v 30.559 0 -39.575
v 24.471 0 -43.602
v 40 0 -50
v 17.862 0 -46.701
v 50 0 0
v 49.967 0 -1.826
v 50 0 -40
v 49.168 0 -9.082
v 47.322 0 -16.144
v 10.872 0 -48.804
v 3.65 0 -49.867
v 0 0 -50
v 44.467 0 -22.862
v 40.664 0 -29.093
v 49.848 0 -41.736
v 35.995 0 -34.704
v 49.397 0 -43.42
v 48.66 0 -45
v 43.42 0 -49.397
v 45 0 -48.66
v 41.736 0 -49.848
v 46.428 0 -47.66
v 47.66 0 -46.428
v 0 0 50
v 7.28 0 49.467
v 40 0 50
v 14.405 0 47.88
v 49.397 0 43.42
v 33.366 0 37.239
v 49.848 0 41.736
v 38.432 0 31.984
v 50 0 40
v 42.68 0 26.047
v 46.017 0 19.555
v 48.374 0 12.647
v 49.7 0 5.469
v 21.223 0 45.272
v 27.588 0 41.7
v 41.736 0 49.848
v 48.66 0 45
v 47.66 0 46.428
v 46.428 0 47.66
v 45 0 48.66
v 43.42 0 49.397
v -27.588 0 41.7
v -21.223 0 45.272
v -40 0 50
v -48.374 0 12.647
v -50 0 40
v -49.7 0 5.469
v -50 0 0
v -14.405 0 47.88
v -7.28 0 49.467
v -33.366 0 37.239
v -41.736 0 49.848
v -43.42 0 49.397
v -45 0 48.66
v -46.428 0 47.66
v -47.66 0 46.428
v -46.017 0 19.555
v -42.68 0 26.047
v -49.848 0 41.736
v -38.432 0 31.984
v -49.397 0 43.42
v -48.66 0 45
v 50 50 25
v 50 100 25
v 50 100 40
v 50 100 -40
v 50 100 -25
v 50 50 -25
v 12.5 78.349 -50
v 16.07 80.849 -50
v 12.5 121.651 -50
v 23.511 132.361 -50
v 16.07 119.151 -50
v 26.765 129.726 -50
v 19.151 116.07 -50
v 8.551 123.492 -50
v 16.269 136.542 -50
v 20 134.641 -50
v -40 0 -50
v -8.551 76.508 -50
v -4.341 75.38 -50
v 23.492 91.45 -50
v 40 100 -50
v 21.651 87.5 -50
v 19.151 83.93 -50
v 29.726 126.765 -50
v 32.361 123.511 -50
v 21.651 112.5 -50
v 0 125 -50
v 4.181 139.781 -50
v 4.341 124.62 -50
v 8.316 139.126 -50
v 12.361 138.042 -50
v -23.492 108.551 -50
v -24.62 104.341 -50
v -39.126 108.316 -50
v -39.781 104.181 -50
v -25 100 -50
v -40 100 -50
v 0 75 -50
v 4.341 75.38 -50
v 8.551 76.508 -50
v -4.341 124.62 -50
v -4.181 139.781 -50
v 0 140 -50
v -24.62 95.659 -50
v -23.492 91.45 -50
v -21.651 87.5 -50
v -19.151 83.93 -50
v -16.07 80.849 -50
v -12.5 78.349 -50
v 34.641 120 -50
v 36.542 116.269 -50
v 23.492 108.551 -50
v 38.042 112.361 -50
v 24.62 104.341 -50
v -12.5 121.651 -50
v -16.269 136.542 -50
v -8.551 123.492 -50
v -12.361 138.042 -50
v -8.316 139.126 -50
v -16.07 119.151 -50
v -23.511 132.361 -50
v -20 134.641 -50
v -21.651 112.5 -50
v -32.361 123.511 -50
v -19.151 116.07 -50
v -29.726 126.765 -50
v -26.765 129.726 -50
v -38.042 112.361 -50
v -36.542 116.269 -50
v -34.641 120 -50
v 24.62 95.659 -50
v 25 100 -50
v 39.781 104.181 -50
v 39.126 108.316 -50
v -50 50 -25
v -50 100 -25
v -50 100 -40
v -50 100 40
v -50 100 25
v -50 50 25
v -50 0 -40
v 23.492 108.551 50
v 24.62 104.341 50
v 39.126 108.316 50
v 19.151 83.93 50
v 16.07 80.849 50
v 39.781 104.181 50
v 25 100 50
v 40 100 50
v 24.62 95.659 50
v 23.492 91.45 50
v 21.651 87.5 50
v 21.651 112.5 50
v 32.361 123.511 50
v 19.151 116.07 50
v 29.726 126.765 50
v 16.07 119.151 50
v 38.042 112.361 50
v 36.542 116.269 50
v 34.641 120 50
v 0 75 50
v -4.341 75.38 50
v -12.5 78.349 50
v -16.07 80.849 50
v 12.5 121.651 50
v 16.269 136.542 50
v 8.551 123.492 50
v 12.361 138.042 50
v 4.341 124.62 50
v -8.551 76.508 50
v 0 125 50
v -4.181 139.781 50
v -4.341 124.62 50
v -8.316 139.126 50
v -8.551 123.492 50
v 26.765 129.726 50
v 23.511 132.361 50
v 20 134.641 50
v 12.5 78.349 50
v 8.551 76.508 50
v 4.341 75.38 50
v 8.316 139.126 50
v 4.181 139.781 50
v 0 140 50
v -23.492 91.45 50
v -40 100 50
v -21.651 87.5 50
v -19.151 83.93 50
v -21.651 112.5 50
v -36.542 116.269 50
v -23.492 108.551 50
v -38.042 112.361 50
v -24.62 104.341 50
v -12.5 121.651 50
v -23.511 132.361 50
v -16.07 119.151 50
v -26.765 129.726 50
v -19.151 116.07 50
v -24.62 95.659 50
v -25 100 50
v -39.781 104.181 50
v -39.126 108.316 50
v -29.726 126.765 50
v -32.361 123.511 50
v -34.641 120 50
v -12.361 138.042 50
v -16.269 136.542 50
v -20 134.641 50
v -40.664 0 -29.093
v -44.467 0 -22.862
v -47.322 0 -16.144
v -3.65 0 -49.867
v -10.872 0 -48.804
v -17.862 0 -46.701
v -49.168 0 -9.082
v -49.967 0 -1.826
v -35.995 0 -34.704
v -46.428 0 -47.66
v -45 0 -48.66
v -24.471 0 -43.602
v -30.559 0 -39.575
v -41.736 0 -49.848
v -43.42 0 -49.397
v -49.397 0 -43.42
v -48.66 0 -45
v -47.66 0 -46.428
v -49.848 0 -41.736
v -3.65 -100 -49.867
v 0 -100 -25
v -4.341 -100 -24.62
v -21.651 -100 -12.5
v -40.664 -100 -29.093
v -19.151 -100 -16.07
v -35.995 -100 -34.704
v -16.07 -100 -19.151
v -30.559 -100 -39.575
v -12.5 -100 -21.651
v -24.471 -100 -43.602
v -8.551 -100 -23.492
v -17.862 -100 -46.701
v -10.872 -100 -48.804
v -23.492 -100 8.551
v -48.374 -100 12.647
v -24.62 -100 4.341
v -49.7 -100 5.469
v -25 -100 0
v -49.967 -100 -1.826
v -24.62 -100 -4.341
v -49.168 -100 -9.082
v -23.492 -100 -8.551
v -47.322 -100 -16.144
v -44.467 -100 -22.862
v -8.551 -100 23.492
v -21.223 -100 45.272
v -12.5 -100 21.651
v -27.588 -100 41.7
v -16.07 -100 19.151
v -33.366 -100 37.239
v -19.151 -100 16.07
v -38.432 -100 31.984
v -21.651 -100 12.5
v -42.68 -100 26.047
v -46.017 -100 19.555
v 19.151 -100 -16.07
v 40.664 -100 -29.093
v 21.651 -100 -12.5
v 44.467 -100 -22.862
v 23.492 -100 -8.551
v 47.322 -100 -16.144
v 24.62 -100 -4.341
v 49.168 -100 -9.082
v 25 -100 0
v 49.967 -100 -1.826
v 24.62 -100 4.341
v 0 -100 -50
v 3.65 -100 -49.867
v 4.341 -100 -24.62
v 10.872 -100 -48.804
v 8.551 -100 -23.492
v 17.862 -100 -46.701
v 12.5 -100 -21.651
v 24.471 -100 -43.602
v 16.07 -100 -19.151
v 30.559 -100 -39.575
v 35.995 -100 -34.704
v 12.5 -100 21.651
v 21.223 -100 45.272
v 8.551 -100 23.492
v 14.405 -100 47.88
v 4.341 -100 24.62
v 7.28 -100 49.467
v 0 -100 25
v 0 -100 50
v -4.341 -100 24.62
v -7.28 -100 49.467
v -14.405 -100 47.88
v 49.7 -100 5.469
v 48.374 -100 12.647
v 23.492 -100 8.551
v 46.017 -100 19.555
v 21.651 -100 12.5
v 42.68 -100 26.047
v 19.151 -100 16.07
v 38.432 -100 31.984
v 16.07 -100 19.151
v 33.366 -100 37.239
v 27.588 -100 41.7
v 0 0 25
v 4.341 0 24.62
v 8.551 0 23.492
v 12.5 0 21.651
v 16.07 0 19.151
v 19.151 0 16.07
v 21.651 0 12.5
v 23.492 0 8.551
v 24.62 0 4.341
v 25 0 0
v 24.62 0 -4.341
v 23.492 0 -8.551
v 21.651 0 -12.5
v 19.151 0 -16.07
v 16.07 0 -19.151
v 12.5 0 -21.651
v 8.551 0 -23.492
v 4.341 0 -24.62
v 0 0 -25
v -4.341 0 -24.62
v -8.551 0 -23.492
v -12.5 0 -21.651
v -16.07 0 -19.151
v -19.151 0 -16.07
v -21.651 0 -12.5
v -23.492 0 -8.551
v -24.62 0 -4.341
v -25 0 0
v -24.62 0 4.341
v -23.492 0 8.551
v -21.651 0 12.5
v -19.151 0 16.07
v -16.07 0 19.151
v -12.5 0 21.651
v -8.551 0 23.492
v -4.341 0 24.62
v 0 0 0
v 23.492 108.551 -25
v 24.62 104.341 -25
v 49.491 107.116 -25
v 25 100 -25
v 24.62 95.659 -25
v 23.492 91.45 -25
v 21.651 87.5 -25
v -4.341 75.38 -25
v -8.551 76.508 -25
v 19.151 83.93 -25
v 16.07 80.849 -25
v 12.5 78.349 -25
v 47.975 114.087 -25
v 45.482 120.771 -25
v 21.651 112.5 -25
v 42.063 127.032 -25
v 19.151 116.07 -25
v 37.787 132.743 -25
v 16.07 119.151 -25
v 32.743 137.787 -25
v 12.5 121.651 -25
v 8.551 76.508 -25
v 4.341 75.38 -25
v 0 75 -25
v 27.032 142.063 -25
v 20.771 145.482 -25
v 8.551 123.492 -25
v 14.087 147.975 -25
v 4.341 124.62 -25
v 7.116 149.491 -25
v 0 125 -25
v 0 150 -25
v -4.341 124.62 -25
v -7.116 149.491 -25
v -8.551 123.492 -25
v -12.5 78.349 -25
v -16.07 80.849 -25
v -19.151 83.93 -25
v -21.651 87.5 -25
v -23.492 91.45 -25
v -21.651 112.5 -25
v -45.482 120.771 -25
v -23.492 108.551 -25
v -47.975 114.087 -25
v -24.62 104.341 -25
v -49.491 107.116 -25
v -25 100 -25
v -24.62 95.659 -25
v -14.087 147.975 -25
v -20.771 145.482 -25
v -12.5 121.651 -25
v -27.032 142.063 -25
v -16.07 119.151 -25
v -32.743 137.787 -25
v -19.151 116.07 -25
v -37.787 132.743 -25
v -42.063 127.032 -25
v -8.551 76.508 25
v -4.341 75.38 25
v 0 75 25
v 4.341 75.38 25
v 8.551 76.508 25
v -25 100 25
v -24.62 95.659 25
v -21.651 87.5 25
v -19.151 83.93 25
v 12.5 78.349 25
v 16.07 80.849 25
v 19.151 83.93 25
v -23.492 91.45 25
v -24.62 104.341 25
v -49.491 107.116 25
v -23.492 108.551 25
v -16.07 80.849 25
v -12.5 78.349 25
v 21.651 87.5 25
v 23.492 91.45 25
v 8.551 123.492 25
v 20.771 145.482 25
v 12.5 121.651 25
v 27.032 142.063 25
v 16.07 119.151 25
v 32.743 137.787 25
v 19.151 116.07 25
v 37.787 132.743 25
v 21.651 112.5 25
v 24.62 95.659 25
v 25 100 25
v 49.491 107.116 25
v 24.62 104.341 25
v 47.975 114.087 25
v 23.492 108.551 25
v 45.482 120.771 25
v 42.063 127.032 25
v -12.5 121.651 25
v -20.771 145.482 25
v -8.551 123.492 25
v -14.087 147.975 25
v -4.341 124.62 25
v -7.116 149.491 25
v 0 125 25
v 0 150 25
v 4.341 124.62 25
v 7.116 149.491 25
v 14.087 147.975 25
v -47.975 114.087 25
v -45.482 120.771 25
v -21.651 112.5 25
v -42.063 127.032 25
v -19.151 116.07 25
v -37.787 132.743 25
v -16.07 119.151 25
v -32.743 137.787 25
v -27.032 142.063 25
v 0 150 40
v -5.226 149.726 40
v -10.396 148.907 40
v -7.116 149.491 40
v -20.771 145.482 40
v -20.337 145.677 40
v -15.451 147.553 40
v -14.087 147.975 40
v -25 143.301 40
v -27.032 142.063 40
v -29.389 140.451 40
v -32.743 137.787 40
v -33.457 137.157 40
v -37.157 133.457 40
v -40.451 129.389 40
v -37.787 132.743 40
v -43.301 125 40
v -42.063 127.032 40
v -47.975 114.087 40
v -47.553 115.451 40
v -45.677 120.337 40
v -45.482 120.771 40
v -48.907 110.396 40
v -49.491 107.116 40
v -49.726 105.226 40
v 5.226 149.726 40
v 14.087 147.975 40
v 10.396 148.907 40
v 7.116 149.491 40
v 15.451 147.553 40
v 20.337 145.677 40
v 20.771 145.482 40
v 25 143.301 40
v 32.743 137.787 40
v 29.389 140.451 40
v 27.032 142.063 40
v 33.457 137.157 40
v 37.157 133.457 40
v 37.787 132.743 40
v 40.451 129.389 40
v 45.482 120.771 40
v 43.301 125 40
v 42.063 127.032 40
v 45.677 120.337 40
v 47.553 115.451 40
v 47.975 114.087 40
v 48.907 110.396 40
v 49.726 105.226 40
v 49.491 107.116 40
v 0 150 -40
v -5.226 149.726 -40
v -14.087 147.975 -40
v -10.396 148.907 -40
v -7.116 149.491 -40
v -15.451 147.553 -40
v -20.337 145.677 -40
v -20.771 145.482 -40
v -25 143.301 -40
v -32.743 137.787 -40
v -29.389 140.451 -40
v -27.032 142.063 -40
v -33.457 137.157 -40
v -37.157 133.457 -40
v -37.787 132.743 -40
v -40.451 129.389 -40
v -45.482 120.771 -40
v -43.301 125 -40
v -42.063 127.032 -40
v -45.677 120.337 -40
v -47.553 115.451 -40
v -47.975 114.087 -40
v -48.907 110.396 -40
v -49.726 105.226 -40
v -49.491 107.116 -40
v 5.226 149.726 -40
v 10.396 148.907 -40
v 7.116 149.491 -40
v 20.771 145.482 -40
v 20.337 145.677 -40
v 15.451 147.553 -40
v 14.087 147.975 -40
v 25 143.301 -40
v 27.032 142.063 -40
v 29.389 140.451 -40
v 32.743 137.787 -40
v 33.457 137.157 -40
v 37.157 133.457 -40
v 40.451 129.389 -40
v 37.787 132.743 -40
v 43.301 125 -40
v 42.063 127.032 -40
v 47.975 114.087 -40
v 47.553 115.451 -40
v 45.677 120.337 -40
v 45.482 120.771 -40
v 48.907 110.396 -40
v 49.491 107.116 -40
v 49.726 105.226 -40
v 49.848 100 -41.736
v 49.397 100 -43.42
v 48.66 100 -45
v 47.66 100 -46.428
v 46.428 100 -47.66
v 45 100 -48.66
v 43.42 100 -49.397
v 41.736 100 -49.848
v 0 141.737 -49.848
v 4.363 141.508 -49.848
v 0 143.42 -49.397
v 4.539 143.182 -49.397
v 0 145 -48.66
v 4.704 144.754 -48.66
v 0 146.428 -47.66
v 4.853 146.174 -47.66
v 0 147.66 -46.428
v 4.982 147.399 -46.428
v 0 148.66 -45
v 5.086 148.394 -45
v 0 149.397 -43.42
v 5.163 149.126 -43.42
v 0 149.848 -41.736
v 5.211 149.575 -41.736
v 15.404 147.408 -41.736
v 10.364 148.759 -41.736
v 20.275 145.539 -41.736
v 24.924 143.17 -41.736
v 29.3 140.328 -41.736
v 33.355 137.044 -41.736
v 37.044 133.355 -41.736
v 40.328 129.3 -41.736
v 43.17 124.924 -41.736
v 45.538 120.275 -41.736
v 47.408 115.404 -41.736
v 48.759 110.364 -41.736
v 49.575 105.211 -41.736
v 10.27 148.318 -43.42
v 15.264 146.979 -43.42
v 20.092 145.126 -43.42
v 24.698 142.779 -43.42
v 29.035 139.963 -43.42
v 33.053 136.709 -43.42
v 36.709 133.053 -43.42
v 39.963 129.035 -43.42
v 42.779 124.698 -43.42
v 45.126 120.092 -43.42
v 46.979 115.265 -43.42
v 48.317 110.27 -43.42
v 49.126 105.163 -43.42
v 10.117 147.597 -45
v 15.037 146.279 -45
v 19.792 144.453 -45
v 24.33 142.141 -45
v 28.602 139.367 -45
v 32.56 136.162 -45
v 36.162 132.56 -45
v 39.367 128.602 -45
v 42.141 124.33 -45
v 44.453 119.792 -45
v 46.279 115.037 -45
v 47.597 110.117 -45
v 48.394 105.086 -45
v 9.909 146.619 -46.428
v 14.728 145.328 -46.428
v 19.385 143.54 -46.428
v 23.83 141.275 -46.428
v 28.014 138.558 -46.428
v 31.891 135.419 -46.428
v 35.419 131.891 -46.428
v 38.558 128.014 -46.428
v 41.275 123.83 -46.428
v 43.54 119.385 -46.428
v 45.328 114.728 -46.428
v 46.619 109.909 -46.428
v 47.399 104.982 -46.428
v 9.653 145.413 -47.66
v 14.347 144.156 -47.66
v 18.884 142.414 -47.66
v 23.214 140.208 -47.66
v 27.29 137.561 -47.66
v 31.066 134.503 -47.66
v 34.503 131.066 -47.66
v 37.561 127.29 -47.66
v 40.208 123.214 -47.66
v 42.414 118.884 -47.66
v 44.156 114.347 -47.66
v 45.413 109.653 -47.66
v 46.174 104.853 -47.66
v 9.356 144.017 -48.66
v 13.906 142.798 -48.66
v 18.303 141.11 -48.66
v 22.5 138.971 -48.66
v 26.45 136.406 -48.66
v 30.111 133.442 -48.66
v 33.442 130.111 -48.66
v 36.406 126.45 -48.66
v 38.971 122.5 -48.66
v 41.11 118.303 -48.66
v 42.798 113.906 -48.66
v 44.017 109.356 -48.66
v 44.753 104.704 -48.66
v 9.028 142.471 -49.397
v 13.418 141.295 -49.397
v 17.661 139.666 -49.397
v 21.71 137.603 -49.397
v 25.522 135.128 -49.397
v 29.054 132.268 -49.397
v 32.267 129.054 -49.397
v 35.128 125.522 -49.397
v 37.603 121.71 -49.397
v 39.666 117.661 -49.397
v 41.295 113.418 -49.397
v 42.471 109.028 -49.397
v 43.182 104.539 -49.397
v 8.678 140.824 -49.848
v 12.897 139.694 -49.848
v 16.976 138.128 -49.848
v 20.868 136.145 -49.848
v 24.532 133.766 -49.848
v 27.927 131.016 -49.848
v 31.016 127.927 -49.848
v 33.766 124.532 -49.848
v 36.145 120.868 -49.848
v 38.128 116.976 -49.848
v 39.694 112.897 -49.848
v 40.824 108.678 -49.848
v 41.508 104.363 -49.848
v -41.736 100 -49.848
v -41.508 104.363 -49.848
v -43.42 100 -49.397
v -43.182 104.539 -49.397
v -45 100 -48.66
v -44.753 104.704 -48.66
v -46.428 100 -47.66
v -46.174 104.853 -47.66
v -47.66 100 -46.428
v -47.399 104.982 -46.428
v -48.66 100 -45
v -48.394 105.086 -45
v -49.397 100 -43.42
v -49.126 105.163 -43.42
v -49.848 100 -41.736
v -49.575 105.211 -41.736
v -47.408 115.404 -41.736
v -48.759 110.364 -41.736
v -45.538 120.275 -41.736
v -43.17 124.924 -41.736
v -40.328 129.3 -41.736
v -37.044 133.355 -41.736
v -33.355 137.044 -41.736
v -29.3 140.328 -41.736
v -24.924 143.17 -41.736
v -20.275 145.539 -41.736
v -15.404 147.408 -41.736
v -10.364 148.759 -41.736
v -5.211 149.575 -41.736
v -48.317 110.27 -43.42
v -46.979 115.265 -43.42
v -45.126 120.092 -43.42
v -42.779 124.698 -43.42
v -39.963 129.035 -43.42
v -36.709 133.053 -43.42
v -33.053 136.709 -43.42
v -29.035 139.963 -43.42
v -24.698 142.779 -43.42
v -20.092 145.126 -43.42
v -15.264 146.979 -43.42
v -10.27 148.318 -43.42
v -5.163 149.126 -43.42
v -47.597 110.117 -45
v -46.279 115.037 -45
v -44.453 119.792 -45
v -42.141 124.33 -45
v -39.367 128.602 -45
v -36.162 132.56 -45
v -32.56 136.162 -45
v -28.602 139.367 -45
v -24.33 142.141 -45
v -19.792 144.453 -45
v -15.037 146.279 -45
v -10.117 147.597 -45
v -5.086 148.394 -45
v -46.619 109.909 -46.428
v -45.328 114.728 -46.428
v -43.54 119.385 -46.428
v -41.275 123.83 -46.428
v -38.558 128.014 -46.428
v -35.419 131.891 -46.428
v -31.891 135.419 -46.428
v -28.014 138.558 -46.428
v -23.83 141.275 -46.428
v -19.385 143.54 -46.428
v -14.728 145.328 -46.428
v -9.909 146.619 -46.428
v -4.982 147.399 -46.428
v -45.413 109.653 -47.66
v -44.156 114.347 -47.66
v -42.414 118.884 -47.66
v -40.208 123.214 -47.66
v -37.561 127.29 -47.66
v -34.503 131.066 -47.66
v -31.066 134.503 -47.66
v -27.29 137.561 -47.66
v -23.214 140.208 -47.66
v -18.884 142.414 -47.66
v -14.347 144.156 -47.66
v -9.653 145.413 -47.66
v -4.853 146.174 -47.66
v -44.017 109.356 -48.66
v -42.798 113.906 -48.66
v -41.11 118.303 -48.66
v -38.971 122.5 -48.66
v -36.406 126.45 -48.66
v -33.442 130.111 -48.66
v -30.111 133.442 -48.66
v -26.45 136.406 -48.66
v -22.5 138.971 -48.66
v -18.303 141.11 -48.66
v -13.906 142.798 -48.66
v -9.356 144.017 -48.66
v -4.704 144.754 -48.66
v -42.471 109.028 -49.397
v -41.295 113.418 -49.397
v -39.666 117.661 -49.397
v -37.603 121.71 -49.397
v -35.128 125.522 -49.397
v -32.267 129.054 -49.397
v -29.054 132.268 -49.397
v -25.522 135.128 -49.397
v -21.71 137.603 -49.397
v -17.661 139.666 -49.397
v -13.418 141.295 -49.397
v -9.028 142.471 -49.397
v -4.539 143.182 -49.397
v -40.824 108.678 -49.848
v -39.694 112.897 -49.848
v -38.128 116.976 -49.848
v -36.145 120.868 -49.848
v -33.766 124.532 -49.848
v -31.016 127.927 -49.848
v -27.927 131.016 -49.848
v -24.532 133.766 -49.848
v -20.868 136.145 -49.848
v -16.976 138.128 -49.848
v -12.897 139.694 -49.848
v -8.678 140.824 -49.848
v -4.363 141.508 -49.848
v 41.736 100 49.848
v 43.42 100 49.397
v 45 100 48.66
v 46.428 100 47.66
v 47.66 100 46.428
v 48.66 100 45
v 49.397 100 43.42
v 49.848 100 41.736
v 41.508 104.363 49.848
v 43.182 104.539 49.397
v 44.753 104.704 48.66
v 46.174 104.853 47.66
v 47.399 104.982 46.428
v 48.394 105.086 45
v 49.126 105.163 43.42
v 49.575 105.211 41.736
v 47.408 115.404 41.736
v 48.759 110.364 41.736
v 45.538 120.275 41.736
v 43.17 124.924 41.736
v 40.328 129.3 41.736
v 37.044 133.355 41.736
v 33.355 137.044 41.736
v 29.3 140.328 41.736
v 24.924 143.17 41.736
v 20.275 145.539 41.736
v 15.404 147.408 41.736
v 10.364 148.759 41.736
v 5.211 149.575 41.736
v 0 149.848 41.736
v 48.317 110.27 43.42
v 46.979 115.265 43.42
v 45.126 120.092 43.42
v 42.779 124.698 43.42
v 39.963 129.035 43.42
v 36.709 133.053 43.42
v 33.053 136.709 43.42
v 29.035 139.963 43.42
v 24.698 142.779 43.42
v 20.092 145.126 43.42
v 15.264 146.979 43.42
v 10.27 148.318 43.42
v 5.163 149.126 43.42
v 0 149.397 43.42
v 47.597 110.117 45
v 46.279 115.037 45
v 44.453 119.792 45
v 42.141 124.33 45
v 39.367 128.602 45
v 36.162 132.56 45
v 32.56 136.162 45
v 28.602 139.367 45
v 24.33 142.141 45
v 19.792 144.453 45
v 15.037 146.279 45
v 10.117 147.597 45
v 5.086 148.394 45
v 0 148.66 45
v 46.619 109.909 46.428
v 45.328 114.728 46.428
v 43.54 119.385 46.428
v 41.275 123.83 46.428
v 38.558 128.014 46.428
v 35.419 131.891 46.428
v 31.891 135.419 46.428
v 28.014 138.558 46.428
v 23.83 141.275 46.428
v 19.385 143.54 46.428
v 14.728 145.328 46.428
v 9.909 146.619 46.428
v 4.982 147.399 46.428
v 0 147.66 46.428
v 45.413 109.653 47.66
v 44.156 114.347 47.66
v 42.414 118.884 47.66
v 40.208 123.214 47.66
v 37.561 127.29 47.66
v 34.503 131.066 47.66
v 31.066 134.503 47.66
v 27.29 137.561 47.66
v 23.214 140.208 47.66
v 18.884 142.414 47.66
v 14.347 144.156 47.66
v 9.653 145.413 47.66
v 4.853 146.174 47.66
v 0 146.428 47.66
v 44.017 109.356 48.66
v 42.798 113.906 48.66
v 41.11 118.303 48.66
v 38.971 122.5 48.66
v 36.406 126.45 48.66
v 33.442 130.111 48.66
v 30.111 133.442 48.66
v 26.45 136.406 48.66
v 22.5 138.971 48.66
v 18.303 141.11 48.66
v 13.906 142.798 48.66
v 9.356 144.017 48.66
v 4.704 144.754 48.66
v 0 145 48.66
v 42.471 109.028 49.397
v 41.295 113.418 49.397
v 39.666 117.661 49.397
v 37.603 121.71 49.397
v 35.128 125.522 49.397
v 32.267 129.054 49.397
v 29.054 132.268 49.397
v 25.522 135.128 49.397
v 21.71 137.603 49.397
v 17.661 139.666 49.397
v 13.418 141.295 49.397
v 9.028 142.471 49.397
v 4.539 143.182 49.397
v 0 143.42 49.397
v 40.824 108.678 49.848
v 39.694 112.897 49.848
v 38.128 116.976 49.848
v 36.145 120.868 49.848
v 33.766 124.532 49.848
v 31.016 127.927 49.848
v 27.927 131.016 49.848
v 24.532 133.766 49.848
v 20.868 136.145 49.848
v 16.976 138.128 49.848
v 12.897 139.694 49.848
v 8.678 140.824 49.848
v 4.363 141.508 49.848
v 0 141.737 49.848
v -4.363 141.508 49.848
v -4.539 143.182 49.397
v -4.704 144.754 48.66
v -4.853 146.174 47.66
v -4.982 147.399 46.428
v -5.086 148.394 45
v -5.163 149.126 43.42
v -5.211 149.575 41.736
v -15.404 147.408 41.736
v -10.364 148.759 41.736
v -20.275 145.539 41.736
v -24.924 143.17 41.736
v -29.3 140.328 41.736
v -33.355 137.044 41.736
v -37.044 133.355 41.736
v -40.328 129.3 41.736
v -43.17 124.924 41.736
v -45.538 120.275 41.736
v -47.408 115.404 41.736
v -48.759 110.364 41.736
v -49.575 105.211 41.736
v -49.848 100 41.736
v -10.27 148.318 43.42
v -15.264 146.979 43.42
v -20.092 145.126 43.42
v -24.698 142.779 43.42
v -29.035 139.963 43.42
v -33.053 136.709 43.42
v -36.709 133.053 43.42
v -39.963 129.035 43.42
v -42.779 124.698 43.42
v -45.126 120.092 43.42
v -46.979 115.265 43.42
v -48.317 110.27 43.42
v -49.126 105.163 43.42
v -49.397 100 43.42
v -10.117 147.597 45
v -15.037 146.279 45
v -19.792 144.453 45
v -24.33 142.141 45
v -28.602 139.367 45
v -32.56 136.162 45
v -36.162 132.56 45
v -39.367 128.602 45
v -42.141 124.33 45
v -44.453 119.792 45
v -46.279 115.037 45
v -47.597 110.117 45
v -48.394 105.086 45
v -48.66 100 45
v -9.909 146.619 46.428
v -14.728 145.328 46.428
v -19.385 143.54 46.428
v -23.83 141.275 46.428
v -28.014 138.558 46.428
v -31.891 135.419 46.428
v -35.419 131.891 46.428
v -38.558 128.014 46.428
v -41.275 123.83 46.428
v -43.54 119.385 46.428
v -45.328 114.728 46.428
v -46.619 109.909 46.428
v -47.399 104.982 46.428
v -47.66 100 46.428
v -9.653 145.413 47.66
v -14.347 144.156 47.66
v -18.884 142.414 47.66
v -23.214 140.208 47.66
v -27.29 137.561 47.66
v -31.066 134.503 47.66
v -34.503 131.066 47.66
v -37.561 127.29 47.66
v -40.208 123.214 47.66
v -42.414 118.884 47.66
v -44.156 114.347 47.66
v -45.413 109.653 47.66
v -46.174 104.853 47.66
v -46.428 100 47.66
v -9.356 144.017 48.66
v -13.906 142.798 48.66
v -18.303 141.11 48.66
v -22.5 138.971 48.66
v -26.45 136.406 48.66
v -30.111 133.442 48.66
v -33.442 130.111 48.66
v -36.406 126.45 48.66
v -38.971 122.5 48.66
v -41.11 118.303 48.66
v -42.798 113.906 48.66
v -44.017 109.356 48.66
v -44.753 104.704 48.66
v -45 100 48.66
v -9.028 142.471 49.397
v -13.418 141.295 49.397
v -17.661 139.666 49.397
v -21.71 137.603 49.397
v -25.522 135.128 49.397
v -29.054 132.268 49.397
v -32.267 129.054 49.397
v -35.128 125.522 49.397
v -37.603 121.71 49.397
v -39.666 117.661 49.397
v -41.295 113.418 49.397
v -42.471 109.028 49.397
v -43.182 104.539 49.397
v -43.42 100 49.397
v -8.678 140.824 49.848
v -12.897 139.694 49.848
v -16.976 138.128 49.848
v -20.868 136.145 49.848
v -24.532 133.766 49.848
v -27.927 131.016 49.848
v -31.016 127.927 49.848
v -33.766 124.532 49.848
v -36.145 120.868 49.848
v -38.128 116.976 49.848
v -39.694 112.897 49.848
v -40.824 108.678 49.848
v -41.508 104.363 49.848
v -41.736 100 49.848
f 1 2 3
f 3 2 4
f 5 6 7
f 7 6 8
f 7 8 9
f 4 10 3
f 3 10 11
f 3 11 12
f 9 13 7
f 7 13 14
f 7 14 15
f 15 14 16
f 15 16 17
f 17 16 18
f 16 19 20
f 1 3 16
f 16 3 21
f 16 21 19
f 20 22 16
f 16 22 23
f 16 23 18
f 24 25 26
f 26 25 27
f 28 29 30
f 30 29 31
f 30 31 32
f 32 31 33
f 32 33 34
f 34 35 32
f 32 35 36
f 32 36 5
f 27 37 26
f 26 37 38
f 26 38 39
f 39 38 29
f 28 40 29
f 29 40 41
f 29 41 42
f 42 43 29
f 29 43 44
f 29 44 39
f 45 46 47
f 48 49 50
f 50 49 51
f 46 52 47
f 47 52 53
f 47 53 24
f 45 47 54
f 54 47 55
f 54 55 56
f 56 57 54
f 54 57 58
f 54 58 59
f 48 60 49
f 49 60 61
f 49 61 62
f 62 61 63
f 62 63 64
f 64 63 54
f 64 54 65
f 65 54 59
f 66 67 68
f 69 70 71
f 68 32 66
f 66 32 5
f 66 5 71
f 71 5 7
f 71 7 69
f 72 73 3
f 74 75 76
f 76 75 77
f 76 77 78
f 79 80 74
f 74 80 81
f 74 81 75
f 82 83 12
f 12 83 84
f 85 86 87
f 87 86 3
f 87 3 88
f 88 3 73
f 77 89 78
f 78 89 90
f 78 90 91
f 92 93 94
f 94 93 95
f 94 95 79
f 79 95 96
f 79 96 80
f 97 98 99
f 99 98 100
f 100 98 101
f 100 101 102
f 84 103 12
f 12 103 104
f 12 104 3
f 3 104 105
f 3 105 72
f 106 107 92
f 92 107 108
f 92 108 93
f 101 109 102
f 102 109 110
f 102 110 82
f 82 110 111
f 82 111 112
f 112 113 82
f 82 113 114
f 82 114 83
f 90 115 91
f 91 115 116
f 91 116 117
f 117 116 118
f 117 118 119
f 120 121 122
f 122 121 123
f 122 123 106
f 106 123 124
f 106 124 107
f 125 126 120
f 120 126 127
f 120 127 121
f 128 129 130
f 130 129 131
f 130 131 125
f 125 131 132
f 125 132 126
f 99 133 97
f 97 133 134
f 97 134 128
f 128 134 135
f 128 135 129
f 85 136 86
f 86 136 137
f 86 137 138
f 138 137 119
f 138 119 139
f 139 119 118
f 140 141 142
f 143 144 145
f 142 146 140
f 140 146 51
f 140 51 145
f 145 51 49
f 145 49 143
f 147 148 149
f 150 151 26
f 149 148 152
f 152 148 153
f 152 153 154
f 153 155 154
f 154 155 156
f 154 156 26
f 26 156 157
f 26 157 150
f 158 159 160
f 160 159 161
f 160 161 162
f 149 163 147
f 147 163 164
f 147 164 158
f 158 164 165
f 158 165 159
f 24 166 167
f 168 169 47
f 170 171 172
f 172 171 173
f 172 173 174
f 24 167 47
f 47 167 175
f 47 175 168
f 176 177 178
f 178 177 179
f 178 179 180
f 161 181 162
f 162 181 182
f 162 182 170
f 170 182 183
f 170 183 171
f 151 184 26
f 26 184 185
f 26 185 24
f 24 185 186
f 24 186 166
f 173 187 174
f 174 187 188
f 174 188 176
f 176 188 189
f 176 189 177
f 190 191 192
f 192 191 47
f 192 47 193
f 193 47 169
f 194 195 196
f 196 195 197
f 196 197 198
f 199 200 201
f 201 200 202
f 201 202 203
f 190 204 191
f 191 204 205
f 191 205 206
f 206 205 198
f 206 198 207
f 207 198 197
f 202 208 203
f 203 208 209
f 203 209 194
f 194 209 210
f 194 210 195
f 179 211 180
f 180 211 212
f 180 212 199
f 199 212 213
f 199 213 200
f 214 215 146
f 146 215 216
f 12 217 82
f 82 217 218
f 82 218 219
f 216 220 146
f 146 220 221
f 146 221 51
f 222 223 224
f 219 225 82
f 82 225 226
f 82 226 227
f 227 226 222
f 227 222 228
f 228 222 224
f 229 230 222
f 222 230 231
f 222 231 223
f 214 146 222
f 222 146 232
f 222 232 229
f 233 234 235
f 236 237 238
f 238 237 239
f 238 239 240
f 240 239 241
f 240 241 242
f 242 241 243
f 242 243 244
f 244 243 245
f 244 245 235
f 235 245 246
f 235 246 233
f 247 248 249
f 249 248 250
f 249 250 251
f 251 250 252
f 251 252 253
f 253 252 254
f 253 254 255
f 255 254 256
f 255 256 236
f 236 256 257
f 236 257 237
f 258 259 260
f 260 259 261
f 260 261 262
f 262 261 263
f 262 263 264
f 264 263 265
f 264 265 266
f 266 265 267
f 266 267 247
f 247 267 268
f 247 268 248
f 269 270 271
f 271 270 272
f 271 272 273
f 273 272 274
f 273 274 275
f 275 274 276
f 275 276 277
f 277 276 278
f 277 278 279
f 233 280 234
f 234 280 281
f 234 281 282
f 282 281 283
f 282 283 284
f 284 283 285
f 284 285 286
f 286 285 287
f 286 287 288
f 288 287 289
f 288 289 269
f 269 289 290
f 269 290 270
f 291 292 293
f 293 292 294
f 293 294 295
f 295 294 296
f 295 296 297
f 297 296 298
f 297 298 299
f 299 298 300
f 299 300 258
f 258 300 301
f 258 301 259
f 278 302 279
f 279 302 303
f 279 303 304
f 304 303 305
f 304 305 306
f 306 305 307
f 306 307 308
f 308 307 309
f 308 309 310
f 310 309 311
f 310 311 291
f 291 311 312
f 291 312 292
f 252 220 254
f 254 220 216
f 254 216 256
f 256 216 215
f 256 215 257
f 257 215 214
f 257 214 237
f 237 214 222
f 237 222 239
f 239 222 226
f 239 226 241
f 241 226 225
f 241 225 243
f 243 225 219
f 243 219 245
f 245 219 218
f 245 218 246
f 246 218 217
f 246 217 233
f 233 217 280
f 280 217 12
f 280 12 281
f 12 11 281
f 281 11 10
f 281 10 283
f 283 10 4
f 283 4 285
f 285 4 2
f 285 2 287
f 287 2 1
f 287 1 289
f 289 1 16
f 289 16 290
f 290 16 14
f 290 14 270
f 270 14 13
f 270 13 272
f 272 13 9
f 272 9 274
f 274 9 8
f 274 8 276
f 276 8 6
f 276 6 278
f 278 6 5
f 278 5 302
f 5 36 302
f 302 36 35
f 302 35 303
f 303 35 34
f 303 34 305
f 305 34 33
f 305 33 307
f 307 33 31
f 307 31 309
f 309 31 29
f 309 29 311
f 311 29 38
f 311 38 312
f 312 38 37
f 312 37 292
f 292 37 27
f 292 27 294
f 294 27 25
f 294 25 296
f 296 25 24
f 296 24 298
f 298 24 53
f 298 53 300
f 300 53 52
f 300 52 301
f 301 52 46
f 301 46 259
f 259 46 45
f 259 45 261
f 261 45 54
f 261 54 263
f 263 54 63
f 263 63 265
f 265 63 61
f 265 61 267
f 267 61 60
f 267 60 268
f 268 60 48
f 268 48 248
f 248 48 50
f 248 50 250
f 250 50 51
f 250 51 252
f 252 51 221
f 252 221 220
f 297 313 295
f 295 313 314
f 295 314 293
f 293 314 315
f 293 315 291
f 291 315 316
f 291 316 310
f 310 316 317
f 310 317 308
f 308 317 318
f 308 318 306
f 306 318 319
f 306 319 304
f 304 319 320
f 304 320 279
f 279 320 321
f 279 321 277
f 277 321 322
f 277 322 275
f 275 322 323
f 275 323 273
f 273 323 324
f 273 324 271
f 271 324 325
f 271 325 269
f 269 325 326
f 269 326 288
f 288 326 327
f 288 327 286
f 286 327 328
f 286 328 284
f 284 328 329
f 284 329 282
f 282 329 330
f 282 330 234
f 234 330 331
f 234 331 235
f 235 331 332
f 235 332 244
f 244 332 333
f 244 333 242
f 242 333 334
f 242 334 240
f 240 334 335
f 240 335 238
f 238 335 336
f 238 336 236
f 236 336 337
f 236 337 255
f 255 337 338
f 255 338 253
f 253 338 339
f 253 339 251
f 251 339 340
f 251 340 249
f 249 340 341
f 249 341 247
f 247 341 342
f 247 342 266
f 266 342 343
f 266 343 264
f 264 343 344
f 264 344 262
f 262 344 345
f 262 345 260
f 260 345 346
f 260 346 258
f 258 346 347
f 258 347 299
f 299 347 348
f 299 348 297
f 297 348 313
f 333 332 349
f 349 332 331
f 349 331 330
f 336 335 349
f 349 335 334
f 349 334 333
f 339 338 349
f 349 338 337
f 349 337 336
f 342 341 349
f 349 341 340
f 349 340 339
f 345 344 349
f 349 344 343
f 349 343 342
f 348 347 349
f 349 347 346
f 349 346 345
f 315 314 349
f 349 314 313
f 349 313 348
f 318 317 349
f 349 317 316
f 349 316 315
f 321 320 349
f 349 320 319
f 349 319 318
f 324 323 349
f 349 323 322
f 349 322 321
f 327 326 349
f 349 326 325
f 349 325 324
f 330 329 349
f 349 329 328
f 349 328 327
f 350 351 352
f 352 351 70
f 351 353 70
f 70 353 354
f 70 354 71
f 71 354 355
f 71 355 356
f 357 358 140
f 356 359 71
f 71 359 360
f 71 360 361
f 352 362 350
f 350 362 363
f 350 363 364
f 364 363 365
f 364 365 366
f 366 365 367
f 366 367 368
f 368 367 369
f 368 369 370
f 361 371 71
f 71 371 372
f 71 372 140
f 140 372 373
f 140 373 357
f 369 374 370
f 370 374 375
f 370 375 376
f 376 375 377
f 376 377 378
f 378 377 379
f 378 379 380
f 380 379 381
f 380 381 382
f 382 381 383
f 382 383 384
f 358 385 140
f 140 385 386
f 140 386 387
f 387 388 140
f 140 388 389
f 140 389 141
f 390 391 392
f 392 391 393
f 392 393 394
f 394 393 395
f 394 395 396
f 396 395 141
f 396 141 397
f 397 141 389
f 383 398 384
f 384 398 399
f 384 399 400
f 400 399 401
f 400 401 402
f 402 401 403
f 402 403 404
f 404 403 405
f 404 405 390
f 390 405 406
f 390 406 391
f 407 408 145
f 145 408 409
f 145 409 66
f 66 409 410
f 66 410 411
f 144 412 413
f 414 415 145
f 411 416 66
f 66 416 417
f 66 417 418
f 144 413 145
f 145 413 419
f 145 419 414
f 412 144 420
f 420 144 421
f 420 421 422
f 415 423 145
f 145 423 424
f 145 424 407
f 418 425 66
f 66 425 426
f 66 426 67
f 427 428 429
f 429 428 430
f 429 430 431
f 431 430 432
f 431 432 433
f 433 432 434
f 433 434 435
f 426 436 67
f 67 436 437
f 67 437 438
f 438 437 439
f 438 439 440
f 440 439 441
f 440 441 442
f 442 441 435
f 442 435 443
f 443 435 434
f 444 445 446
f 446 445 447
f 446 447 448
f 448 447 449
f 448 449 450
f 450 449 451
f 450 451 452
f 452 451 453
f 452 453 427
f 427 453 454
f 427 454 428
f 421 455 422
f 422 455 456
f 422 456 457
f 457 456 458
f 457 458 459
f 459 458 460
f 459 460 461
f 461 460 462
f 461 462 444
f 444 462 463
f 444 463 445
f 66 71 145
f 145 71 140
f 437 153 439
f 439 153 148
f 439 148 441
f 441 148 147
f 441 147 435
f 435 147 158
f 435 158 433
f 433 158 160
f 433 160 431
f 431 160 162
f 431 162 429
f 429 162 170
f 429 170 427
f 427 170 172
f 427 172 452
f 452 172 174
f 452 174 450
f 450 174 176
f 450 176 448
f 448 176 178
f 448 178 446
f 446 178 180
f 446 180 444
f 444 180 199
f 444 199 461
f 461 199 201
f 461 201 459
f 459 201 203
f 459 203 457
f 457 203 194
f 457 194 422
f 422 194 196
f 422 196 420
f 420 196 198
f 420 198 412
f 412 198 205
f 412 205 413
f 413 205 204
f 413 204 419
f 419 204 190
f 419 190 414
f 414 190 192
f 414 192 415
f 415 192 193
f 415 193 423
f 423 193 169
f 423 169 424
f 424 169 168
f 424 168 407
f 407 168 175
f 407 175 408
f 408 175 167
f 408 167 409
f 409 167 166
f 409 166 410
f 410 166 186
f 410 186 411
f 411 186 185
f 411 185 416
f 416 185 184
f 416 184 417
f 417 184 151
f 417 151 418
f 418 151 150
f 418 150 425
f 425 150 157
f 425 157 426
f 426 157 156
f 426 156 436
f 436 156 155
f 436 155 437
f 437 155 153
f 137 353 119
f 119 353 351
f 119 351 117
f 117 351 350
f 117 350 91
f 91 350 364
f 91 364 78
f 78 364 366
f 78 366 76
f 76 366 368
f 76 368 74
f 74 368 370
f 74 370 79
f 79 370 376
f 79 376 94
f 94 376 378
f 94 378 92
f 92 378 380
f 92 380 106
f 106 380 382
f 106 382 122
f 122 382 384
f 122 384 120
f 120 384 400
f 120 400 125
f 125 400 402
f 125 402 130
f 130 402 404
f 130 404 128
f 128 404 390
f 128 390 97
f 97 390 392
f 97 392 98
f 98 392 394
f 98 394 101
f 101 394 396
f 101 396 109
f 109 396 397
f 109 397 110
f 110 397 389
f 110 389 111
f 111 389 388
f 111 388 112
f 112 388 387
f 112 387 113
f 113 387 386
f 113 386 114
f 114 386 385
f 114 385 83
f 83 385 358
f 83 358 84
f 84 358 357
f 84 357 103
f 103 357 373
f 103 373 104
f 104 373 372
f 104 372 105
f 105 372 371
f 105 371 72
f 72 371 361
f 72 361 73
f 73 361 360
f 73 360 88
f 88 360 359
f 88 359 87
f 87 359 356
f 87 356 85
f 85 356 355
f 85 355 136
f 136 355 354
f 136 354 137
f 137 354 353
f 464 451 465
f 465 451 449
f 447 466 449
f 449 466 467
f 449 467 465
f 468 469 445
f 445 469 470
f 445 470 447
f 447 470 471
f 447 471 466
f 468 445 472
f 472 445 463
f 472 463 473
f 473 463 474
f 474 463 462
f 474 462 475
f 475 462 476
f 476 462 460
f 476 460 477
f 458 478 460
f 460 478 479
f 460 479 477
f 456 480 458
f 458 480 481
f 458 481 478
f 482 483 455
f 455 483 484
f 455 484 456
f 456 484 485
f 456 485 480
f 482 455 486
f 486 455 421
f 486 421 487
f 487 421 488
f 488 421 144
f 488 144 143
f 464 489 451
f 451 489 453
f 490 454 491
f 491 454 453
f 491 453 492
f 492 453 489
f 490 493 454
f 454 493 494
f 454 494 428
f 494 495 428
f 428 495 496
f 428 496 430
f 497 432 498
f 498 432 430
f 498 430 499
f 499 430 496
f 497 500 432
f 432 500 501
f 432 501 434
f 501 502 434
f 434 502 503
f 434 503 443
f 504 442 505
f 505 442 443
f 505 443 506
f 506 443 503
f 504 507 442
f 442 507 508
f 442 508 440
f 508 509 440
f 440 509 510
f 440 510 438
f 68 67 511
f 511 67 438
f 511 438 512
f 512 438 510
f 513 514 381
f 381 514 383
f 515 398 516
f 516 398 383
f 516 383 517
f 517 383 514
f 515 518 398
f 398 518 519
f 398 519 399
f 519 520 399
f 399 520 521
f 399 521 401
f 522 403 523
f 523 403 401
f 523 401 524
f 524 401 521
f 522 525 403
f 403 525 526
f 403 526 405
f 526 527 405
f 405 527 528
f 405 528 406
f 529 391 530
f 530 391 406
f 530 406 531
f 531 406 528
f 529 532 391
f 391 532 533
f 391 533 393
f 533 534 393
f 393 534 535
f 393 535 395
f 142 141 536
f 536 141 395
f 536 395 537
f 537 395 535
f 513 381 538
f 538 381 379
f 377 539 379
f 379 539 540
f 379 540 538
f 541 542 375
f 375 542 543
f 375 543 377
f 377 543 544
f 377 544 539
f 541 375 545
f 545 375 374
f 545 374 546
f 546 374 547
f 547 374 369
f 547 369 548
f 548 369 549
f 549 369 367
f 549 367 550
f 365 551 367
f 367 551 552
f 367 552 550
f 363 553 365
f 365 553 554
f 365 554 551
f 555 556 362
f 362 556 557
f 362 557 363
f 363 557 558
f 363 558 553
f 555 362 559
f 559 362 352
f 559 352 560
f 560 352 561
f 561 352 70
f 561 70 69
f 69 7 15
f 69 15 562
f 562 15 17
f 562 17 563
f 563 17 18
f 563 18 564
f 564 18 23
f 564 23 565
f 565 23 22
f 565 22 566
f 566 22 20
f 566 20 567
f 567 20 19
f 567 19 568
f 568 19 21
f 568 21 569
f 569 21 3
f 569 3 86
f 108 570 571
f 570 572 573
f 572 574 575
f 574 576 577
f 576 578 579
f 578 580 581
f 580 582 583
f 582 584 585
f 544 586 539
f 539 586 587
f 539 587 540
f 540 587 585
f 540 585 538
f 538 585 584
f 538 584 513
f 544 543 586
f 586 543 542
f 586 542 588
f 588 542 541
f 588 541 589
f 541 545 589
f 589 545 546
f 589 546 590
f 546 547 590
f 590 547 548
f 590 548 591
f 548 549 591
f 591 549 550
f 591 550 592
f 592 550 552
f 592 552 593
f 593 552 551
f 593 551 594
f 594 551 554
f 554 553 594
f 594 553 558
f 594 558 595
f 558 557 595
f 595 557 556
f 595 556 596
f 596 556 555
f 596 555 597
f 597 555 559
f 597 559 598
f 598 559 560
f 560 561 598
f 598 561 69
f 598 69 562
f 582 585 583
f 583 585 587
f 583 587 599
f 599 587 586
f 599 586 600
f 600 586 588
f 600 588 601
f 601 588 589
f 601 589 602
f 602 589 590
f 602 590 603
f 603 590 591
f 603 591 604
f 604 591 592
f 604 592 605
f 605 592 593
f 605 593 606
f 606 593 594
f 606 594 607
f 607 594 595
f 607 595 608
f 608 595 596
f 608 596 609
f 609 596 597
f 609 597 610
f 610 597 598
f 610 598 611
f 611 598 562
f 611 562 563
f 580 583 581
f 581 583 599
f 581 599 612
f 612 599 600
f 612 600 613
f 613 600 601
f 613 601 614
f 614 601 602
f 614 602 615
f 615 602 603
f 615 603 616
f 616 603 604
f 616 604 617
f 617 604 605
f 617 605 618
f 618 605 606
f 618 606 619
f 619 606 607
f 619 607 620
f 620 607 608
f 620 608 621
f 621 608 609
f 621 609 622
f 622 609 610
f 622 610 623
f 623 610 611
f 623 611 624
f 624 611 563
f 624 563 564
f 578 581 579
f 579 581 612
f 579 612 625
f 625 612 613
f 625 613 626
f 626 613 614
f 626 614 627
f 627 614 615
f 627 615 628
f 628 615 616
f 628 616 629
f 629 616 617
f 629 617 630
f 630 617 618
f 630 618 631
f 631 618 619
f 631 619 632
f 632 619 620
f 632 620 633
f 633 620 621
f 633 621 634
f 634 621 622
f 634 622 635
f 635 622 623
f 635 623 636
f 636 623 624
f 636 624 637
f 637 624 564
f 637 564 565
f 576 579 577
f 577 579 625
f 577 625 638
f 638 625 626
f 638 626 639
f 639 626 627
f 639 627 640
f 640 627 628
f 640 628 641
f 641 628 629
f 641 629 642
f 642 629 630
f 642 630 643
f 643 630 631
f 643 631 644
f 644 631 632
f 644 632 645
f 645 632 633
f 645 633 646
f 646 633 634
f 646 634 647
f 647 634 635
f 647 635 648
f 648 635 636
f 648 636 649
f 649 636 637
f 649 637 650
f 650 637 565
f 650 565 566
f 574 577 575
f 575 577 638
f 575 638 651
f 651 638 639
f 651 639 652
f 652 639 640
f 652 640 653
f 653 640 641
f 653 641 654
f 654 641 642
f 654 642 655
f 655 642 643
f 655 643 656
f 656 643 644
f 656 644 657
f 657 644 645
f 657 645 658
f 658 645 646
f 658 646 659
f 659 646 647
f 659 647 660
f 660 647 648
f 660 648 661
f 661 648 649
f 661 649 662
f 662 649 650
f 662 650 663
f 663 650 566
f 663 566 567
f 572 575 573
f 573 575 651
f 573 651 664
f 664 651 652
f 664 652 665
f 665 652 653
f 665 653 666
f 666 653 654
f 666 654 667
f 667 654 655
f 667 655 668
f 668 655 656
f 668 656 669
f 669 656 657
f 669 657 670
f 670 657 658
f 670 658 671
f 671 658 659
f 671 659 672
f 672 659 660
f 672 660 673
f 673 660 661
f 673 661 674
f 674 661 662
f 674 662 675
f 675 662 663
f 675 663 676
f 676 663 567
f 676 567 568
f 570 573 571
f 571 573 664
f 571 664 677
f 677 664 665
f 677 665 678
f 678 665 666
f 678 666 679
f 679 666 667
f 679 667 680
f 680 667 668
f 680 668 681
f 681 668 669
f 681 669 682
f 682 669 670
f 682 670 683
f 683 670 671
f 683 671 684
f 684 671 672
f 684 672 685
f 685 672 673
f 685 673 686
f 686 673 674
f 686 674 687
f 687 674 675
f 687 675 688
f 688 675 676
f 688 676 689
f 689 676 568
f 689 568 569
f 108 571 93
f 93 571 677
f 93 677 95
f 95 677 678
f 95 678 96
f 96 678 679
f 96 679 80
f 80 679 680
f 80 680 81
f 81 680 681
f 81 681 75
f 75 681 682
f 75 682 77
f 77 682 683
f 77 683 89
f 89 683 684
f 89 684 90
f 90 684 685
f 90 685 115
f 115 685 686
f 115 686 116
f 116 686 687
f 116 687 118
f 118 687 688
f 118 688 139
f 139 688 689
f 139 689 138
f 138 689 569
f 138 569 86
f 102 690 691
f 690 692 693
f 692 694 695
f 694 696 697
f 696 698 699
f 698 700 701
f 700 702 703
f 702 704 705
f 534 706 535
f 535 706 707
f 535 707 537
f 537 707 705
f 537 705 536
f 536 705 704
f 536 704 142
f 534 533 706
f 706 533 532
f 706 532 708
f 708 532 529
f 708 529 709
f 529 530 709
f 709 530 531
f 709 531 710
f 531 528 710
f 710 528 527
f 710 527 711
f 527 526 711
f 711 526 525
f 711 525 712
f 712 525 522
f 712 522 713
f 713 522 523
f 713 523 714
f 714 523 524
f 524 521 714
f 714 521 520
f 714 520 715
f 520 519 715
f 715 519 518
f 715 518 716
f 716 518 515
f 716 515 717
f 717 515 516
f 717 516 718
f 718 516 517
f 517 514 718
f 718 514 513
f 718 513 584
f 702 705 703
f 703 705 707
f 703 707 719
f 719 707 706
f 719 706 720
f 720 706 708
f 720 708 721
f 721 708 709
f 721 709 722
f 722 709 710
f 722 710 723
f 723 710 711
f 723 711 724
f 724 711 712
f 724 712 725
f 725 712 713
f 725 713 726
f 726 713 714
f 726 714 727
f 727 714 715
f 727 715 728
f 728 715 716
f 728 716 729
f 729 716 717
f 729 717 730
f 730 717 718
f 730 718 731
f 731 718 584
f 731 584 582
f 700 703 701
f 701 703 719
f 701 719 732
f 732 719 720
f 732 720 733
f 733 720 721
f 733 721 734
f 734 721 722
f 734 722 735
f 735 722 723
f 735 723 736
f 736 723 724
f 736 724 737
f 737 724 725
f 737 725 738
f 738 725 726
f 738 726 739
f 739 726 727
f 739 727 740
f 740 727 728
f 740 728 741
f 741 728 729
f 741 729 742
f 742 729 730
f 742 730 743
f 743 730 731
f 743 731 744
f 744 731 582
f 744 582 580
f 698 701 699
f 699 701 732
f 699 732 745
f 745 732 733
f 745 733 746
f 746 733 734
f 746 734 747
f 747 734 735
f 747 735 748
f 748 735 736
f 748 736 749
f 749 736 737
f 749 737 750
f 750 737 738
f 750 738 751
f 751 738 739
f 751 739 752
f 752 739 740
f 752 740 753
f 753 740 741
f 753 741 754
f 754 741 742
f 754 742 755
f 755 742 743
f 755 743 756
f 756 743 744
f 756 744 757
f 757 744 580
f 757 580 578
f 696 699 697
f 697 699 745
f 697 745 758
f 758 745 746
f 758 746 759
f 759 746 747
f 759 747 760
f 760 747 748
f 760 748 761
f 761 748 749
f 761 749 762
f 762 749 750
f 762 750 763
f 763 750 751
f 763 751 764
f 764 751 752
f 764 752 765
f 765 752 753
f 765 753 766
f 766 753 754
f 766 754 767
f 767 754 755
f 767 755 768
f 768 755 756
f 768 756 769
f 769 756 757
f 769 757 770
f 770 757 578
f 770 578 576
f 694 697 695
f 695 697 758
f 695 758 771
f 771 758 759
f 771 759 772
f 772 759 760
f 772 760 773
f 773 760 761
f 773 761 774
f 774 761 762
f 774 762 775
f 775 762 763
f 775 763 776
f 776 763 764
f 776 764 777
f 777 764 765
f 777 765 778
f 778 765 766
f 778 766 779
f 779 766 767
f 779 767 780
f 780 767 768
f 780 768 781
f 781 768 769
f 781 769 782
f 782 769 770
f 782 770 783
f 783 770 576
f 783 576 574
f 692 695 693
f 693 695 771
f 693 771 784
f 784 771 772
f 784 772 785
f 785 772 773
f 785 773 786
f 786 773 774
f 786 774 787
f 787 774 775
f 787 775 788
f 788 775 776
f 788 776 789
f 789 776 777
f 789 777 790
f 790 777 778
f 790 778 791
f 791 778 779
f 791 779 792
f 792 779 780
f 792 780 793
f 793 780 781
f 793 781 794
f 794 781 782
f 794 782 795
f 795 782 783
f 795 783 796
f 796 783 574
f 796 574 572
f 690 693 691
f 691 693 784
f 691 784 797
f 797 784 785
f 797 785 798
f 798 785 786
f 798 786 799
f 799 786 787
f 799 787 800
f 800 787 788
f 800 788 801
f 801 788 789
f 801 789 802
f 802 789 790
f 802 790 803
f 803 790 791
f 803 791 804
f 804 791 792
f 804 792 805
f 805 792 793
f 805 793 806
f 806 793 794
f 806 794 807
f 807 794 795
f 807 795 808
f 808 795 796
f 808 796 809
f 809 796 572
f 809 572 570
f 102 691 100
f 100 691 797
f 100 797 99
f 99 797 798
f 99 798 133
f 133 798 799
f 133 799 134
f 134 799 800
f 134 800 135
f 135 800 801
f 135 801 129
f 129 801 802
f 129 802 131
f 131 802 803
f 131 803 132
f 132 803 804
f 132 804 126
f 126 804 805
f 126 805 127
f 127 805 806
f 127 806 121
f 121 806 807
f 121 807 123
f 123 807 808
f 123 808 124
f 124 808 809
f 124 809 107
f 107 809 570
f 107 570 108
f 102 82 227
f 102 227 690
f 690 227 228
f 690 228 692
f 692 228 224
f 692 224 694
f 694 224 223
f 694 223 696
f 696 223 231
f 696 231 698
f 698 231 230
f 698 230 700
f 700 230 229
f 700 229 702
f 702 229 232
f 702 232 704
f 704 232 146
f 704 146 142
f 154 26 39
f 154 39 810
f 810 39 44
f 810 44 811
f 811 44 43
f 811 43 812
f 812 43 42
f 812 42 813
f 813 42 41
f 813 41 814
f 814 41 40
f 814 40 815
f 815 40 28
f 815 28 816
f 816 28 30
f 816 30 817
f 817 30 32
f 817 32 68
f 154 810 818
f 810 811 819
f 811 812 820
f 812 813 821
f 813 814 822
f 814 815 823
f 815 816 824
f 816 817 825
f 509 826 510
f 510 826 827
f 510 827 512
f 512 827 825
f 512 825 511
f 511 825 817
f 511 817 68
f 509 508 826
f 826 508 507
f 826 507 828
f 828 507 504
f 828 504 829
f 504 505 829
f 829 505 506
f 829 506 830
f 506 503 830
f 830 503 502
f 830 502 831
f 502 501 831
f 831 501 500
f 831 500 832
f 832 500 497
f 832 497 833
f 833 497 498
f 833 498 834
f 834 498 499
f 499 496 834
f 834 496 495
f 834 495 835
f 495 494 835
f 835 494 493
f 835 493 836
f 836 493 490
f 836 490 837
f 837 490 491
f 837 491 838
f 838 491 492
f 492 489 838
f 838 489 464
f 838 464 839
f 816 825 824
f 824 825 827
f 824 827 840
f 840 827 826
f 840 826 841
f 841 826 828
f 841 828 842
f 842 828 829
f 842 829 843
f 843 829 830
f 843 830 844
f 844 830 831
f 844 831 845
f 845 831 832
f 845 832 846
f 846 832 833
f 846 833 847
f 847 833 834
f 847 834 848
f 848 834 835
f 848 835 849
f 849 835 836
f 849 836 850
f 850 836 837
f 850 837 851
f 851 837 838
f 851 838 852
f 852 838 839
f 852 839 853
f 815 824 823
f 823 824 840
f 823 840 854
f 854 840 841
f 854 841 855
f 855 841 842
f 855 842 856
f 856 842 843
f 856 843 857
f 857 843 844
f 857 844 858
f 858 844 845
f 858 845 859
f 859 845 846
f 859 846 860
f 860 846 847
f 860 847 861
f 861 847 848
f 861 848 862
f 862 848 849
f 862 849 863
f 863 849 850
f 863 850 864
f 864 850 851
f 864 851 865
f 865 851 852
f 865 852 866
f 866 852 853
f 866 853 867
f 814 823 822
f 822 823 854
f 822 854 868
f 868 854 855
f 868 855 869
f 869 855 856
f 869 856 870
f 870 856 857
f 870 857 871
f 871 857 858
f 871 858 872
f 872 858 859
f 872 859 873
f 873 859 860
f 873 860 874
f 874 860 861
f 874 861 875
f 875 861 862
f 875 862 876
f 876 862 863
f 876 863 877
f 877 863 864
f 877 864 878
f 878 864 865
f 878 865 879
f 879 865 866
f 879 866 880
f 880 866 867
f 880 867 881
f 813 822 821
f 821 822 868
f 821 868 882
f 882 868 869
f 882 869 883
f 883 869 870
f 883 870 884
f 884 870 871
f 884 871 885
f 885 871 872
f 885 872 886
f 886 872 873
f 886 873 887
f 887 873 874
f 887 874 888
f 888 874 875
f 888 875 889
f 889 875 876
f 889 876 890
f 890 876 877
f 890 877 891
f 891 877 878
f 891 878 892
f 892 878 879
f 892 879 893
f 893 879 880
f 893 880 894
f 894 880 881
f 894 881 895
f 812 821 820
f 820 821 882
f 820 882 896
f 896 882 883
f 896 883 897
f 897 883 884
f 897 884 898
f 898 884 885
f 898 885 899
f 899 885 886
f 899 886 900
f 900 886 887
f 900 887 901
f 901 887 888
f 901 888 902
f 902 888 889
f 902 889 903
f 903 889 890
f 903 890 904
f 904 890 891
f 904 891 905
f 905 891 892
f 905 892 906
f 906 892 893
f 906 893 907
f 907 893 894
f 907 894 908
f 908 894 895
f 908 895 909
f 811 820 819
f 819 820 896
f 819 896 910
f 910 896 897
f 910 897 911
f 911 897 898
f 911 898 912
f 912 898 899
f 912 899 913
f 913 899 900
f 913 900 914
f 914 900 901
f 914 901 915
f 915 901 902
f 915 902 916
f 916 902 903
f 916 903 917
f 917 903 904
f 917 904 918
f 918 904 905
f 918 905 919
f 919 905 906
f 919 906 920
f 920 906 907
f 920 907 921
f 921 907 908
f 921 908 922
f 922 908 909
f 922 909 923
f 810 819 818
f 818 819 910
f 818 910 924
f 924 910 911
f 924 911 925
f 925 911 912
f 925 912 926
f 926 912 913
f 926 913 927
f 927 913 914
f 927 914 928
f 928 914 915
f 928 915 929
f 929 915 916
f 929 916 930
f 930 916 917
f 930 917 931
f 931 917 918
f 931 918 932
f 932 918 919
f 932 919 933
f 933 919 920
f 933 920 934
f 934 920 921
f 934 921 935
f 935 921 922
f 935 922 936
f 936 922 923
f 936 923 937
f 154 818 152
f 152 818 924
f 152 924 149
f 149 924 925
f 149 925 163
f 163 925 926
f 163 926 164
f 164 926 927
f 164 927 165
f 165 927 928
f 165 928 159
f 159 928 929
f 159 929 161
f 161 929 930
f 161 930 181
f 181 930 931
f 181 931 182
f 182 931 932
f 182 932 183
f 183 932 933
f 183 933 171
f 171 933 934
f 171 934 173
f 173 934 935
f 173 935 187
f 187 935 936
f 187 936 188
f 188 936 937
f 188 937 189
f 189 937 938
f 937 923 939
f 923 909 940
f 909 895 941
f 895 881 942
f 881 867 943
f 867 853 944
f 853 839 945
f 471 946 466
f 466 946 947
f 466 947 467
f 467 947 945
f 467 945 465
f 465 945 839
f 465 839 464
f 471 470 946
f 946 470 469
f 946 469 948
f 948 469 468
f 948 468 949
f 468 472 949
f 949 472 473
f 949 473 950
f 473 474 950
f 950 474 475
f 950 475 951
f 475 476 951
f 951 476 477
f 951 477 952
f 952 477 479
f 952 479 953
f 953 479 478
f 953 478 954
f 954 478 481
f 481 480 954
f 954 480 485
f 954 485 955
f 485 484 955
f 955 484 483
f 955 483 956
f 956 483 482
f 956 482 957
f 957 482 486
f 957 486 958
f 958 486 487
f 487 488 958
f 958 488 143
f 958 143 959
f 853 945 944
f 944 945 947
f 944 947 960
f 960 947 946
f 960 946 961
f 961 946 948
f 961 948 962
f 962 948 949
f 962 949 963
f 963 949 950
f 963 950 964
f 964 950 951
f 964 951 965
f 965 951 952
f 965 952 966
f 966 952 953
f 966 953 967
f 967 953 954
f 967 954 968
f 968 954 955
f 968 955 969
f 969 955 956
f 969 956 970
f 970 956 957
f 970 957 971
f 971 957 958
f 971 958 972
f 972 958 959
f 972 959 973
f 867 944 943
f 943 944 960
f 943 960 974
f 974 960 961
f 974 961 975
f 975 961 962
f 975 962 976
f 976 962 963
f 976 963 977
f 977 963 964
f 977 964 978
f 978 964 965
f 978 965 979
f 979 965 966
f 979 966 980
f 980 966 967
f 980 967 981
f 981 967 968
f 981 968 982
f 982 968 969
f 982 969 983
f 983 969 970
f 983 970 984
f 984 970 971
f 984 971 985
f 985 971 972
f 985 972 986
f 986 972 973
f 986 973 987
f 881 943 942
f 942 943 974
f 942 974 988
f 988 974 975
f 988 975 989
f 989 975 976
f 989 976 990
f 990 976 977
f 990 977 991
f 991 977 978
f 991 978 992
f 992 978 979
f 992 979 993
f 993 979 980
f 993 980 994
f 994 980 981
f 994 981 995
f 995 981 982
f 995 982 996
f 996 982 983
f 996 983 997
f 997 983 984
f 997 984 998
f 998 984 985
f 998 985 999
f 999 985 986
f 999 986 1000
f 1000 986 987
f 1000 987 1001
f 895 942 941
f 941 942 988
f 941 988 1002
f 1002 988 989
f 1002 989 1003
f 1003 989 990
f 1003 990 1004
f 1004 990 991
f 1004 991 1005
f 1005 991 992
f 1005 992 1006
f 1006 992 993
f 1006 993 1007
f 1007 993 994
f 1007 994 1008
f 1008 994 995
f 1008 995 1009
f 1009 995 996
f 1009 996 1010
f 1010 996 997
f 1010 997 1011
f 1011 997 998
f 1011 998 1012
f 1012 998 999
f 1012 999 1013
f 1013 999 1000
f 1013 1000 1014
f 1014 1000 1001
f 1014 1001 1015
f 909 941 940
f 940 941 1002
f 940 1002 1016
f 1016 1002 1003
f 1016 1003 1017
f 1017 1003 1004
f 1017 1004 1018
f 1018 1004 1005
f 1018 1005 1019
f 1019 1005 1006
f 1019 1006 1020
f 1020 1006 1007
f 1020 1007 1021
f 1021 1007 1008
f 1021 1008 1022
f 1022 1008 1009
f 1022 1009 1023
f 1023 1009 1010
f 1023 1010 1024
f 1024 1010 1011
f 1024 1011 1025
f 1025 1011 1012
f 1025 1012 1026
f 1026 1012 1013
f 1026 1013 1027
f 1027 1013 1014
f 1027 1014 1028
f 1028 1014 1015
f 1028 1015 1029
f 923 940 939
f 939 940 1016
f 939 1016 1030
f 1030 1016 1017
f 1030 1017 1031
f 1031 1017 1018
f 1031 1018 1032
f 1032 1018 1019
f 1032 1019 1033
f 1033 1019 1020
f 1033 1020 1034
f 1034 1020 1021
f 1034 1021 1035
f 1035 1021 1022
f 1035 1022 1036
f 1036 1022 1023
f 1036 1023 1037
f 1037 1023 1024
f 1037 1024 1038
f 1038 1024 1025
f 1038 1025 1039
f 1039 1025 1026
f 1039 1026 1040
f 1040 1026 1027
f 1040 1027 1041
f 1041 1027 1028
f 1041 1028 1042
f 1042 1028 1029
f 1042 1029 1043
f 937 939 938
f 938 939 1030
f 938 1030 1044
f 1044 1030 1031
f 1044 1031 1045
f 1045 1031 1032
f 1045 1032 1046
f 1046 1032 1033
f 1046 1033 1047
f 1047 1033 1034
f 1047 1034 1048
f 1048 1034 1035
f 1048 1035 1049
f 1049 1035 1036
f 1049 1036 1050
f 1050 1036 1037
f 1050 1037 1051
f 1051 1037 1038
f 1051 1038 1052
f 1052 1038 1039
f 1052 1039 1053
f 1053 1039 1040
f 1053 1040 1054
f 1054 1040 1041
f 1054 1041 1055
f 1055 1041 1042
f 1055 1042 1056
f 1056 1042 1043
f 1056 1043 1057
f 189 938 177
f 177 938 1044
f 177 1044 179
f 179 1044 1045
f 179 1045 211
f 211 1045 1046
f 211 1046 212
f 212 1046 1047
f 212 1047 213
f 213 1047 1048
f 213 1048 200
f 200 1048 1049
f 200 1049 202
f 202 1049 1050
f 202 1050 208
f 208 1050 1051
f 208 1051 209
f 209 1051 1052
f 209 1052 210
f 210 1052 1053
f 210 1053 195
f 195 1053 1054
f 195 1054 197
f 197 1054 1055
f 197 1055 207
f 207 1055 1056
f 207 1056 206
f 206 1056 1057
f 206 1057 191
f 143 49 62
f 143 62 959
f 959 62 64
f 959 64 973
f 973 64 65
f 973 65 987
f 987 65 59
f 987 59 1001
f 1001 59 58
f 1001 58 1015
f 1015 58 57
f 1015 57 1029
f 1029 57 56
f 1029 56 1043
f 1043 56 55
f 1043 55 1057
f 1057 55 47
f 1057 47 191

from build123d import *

# Parameters (mm, degrees)
SKETCH1_W           = 100
SKETCH1_H           = 100
BOSS_EXTRUDE1_DEPTH = 150
SKETCH2_R           = 50
SKETCH2_R_2         = 25
BOSS_EXTRUDE2_DEPTH = 100
SKETCH3_W           = 100
SKETCH3_H           = 50
CUT_EXTRUDE1_DEPTH  = 100
SKETCH4_R           = 25
CUT_EXTRUDE2_DEPTH  = 188.082869339
FILLET1_R           = 50
FILLET2_R           = 10


with BuildPart() as part:
    # Sketch1 → Boss-Extrude1 (new body)
    with BuildSketch(Plane(origin=(0, 0, 0), x_dir=(1, 0, 0), z_dir=(0, 1, 0))):
        Rectangle(SKETCH1_W, SKETCH1_H)
    extrude(amount=BOSS_EXTRUDE1_DEPTH)

    # Sketch2 → Boss-Extrude2 (add)
    with BuildSketch(Plane.XZ):
        with Locations(Location((0, 0, 0), (0, 0, 270))):
            Circle(SKETCH2_R)
        with Locations(Location((0, 0, 0), (0, 0, 270))):
            Circle(SKETCH2_R_2, mode=Mode.SUBTRACT)
    extrude(amount=BOSS_EXTRUDE2_DEPTH)

    # Sketch3 → Cut-Extrude1 (cut)
    with BuildSketch(Plane(origin=(0, 150, 0), x_dir=(1, 0, 0), z_dir=(0, 1, 0))):
        Rectangle(SKETCH3_W, SKETCH3_H)
    extrude(amount=-CUT_EXTRUDE1_DEPTH, mode=Mode.SUBTRACT)

    # Sketch4 → Cut-Extrude2 (cut, through all)
    with BuildSketch(Plane.XY.offset(50)):
        with Locations((0, 100)):
            Circle(SKETCH4_R)
    extrude(amount=-CUT_EXTRUDE2_DEPTH, mode=Mode.SUBTRACT)

    # Fillet1
    fillet1_edges = [part.edges().sort_by_distance(p)[0] for p in [
        (50, 150, 37.5),
        (50, 150, -37.5),
        (-50, 150, -37.5),
        (-50, 150, 37.5),
    ]]
    fillet(fillet1_edges, radius=FILLET1_R - 0.0001)  # a hair under: the kernel refuses the full size

    # Fillet2
    fillet2_edges = [part.edges().sort_by_distance(p)[0] for p in [
        (50, 50.00005, 50),
        (50, 50.00005, -50),
        (-50, 50.00005, 50),
        (-35.355368349, 135.355368349, 50),
        (35.355368349, 135.355368349, 50),
        (-50, 50.00005, -50),
        (-35.355368349, 135.355368349, -50),
        (35.355368349, 135.355368349, -50),
    ]]
    fillet(fillet2_edges, radius=FILLET2_R)


solid = part.part
